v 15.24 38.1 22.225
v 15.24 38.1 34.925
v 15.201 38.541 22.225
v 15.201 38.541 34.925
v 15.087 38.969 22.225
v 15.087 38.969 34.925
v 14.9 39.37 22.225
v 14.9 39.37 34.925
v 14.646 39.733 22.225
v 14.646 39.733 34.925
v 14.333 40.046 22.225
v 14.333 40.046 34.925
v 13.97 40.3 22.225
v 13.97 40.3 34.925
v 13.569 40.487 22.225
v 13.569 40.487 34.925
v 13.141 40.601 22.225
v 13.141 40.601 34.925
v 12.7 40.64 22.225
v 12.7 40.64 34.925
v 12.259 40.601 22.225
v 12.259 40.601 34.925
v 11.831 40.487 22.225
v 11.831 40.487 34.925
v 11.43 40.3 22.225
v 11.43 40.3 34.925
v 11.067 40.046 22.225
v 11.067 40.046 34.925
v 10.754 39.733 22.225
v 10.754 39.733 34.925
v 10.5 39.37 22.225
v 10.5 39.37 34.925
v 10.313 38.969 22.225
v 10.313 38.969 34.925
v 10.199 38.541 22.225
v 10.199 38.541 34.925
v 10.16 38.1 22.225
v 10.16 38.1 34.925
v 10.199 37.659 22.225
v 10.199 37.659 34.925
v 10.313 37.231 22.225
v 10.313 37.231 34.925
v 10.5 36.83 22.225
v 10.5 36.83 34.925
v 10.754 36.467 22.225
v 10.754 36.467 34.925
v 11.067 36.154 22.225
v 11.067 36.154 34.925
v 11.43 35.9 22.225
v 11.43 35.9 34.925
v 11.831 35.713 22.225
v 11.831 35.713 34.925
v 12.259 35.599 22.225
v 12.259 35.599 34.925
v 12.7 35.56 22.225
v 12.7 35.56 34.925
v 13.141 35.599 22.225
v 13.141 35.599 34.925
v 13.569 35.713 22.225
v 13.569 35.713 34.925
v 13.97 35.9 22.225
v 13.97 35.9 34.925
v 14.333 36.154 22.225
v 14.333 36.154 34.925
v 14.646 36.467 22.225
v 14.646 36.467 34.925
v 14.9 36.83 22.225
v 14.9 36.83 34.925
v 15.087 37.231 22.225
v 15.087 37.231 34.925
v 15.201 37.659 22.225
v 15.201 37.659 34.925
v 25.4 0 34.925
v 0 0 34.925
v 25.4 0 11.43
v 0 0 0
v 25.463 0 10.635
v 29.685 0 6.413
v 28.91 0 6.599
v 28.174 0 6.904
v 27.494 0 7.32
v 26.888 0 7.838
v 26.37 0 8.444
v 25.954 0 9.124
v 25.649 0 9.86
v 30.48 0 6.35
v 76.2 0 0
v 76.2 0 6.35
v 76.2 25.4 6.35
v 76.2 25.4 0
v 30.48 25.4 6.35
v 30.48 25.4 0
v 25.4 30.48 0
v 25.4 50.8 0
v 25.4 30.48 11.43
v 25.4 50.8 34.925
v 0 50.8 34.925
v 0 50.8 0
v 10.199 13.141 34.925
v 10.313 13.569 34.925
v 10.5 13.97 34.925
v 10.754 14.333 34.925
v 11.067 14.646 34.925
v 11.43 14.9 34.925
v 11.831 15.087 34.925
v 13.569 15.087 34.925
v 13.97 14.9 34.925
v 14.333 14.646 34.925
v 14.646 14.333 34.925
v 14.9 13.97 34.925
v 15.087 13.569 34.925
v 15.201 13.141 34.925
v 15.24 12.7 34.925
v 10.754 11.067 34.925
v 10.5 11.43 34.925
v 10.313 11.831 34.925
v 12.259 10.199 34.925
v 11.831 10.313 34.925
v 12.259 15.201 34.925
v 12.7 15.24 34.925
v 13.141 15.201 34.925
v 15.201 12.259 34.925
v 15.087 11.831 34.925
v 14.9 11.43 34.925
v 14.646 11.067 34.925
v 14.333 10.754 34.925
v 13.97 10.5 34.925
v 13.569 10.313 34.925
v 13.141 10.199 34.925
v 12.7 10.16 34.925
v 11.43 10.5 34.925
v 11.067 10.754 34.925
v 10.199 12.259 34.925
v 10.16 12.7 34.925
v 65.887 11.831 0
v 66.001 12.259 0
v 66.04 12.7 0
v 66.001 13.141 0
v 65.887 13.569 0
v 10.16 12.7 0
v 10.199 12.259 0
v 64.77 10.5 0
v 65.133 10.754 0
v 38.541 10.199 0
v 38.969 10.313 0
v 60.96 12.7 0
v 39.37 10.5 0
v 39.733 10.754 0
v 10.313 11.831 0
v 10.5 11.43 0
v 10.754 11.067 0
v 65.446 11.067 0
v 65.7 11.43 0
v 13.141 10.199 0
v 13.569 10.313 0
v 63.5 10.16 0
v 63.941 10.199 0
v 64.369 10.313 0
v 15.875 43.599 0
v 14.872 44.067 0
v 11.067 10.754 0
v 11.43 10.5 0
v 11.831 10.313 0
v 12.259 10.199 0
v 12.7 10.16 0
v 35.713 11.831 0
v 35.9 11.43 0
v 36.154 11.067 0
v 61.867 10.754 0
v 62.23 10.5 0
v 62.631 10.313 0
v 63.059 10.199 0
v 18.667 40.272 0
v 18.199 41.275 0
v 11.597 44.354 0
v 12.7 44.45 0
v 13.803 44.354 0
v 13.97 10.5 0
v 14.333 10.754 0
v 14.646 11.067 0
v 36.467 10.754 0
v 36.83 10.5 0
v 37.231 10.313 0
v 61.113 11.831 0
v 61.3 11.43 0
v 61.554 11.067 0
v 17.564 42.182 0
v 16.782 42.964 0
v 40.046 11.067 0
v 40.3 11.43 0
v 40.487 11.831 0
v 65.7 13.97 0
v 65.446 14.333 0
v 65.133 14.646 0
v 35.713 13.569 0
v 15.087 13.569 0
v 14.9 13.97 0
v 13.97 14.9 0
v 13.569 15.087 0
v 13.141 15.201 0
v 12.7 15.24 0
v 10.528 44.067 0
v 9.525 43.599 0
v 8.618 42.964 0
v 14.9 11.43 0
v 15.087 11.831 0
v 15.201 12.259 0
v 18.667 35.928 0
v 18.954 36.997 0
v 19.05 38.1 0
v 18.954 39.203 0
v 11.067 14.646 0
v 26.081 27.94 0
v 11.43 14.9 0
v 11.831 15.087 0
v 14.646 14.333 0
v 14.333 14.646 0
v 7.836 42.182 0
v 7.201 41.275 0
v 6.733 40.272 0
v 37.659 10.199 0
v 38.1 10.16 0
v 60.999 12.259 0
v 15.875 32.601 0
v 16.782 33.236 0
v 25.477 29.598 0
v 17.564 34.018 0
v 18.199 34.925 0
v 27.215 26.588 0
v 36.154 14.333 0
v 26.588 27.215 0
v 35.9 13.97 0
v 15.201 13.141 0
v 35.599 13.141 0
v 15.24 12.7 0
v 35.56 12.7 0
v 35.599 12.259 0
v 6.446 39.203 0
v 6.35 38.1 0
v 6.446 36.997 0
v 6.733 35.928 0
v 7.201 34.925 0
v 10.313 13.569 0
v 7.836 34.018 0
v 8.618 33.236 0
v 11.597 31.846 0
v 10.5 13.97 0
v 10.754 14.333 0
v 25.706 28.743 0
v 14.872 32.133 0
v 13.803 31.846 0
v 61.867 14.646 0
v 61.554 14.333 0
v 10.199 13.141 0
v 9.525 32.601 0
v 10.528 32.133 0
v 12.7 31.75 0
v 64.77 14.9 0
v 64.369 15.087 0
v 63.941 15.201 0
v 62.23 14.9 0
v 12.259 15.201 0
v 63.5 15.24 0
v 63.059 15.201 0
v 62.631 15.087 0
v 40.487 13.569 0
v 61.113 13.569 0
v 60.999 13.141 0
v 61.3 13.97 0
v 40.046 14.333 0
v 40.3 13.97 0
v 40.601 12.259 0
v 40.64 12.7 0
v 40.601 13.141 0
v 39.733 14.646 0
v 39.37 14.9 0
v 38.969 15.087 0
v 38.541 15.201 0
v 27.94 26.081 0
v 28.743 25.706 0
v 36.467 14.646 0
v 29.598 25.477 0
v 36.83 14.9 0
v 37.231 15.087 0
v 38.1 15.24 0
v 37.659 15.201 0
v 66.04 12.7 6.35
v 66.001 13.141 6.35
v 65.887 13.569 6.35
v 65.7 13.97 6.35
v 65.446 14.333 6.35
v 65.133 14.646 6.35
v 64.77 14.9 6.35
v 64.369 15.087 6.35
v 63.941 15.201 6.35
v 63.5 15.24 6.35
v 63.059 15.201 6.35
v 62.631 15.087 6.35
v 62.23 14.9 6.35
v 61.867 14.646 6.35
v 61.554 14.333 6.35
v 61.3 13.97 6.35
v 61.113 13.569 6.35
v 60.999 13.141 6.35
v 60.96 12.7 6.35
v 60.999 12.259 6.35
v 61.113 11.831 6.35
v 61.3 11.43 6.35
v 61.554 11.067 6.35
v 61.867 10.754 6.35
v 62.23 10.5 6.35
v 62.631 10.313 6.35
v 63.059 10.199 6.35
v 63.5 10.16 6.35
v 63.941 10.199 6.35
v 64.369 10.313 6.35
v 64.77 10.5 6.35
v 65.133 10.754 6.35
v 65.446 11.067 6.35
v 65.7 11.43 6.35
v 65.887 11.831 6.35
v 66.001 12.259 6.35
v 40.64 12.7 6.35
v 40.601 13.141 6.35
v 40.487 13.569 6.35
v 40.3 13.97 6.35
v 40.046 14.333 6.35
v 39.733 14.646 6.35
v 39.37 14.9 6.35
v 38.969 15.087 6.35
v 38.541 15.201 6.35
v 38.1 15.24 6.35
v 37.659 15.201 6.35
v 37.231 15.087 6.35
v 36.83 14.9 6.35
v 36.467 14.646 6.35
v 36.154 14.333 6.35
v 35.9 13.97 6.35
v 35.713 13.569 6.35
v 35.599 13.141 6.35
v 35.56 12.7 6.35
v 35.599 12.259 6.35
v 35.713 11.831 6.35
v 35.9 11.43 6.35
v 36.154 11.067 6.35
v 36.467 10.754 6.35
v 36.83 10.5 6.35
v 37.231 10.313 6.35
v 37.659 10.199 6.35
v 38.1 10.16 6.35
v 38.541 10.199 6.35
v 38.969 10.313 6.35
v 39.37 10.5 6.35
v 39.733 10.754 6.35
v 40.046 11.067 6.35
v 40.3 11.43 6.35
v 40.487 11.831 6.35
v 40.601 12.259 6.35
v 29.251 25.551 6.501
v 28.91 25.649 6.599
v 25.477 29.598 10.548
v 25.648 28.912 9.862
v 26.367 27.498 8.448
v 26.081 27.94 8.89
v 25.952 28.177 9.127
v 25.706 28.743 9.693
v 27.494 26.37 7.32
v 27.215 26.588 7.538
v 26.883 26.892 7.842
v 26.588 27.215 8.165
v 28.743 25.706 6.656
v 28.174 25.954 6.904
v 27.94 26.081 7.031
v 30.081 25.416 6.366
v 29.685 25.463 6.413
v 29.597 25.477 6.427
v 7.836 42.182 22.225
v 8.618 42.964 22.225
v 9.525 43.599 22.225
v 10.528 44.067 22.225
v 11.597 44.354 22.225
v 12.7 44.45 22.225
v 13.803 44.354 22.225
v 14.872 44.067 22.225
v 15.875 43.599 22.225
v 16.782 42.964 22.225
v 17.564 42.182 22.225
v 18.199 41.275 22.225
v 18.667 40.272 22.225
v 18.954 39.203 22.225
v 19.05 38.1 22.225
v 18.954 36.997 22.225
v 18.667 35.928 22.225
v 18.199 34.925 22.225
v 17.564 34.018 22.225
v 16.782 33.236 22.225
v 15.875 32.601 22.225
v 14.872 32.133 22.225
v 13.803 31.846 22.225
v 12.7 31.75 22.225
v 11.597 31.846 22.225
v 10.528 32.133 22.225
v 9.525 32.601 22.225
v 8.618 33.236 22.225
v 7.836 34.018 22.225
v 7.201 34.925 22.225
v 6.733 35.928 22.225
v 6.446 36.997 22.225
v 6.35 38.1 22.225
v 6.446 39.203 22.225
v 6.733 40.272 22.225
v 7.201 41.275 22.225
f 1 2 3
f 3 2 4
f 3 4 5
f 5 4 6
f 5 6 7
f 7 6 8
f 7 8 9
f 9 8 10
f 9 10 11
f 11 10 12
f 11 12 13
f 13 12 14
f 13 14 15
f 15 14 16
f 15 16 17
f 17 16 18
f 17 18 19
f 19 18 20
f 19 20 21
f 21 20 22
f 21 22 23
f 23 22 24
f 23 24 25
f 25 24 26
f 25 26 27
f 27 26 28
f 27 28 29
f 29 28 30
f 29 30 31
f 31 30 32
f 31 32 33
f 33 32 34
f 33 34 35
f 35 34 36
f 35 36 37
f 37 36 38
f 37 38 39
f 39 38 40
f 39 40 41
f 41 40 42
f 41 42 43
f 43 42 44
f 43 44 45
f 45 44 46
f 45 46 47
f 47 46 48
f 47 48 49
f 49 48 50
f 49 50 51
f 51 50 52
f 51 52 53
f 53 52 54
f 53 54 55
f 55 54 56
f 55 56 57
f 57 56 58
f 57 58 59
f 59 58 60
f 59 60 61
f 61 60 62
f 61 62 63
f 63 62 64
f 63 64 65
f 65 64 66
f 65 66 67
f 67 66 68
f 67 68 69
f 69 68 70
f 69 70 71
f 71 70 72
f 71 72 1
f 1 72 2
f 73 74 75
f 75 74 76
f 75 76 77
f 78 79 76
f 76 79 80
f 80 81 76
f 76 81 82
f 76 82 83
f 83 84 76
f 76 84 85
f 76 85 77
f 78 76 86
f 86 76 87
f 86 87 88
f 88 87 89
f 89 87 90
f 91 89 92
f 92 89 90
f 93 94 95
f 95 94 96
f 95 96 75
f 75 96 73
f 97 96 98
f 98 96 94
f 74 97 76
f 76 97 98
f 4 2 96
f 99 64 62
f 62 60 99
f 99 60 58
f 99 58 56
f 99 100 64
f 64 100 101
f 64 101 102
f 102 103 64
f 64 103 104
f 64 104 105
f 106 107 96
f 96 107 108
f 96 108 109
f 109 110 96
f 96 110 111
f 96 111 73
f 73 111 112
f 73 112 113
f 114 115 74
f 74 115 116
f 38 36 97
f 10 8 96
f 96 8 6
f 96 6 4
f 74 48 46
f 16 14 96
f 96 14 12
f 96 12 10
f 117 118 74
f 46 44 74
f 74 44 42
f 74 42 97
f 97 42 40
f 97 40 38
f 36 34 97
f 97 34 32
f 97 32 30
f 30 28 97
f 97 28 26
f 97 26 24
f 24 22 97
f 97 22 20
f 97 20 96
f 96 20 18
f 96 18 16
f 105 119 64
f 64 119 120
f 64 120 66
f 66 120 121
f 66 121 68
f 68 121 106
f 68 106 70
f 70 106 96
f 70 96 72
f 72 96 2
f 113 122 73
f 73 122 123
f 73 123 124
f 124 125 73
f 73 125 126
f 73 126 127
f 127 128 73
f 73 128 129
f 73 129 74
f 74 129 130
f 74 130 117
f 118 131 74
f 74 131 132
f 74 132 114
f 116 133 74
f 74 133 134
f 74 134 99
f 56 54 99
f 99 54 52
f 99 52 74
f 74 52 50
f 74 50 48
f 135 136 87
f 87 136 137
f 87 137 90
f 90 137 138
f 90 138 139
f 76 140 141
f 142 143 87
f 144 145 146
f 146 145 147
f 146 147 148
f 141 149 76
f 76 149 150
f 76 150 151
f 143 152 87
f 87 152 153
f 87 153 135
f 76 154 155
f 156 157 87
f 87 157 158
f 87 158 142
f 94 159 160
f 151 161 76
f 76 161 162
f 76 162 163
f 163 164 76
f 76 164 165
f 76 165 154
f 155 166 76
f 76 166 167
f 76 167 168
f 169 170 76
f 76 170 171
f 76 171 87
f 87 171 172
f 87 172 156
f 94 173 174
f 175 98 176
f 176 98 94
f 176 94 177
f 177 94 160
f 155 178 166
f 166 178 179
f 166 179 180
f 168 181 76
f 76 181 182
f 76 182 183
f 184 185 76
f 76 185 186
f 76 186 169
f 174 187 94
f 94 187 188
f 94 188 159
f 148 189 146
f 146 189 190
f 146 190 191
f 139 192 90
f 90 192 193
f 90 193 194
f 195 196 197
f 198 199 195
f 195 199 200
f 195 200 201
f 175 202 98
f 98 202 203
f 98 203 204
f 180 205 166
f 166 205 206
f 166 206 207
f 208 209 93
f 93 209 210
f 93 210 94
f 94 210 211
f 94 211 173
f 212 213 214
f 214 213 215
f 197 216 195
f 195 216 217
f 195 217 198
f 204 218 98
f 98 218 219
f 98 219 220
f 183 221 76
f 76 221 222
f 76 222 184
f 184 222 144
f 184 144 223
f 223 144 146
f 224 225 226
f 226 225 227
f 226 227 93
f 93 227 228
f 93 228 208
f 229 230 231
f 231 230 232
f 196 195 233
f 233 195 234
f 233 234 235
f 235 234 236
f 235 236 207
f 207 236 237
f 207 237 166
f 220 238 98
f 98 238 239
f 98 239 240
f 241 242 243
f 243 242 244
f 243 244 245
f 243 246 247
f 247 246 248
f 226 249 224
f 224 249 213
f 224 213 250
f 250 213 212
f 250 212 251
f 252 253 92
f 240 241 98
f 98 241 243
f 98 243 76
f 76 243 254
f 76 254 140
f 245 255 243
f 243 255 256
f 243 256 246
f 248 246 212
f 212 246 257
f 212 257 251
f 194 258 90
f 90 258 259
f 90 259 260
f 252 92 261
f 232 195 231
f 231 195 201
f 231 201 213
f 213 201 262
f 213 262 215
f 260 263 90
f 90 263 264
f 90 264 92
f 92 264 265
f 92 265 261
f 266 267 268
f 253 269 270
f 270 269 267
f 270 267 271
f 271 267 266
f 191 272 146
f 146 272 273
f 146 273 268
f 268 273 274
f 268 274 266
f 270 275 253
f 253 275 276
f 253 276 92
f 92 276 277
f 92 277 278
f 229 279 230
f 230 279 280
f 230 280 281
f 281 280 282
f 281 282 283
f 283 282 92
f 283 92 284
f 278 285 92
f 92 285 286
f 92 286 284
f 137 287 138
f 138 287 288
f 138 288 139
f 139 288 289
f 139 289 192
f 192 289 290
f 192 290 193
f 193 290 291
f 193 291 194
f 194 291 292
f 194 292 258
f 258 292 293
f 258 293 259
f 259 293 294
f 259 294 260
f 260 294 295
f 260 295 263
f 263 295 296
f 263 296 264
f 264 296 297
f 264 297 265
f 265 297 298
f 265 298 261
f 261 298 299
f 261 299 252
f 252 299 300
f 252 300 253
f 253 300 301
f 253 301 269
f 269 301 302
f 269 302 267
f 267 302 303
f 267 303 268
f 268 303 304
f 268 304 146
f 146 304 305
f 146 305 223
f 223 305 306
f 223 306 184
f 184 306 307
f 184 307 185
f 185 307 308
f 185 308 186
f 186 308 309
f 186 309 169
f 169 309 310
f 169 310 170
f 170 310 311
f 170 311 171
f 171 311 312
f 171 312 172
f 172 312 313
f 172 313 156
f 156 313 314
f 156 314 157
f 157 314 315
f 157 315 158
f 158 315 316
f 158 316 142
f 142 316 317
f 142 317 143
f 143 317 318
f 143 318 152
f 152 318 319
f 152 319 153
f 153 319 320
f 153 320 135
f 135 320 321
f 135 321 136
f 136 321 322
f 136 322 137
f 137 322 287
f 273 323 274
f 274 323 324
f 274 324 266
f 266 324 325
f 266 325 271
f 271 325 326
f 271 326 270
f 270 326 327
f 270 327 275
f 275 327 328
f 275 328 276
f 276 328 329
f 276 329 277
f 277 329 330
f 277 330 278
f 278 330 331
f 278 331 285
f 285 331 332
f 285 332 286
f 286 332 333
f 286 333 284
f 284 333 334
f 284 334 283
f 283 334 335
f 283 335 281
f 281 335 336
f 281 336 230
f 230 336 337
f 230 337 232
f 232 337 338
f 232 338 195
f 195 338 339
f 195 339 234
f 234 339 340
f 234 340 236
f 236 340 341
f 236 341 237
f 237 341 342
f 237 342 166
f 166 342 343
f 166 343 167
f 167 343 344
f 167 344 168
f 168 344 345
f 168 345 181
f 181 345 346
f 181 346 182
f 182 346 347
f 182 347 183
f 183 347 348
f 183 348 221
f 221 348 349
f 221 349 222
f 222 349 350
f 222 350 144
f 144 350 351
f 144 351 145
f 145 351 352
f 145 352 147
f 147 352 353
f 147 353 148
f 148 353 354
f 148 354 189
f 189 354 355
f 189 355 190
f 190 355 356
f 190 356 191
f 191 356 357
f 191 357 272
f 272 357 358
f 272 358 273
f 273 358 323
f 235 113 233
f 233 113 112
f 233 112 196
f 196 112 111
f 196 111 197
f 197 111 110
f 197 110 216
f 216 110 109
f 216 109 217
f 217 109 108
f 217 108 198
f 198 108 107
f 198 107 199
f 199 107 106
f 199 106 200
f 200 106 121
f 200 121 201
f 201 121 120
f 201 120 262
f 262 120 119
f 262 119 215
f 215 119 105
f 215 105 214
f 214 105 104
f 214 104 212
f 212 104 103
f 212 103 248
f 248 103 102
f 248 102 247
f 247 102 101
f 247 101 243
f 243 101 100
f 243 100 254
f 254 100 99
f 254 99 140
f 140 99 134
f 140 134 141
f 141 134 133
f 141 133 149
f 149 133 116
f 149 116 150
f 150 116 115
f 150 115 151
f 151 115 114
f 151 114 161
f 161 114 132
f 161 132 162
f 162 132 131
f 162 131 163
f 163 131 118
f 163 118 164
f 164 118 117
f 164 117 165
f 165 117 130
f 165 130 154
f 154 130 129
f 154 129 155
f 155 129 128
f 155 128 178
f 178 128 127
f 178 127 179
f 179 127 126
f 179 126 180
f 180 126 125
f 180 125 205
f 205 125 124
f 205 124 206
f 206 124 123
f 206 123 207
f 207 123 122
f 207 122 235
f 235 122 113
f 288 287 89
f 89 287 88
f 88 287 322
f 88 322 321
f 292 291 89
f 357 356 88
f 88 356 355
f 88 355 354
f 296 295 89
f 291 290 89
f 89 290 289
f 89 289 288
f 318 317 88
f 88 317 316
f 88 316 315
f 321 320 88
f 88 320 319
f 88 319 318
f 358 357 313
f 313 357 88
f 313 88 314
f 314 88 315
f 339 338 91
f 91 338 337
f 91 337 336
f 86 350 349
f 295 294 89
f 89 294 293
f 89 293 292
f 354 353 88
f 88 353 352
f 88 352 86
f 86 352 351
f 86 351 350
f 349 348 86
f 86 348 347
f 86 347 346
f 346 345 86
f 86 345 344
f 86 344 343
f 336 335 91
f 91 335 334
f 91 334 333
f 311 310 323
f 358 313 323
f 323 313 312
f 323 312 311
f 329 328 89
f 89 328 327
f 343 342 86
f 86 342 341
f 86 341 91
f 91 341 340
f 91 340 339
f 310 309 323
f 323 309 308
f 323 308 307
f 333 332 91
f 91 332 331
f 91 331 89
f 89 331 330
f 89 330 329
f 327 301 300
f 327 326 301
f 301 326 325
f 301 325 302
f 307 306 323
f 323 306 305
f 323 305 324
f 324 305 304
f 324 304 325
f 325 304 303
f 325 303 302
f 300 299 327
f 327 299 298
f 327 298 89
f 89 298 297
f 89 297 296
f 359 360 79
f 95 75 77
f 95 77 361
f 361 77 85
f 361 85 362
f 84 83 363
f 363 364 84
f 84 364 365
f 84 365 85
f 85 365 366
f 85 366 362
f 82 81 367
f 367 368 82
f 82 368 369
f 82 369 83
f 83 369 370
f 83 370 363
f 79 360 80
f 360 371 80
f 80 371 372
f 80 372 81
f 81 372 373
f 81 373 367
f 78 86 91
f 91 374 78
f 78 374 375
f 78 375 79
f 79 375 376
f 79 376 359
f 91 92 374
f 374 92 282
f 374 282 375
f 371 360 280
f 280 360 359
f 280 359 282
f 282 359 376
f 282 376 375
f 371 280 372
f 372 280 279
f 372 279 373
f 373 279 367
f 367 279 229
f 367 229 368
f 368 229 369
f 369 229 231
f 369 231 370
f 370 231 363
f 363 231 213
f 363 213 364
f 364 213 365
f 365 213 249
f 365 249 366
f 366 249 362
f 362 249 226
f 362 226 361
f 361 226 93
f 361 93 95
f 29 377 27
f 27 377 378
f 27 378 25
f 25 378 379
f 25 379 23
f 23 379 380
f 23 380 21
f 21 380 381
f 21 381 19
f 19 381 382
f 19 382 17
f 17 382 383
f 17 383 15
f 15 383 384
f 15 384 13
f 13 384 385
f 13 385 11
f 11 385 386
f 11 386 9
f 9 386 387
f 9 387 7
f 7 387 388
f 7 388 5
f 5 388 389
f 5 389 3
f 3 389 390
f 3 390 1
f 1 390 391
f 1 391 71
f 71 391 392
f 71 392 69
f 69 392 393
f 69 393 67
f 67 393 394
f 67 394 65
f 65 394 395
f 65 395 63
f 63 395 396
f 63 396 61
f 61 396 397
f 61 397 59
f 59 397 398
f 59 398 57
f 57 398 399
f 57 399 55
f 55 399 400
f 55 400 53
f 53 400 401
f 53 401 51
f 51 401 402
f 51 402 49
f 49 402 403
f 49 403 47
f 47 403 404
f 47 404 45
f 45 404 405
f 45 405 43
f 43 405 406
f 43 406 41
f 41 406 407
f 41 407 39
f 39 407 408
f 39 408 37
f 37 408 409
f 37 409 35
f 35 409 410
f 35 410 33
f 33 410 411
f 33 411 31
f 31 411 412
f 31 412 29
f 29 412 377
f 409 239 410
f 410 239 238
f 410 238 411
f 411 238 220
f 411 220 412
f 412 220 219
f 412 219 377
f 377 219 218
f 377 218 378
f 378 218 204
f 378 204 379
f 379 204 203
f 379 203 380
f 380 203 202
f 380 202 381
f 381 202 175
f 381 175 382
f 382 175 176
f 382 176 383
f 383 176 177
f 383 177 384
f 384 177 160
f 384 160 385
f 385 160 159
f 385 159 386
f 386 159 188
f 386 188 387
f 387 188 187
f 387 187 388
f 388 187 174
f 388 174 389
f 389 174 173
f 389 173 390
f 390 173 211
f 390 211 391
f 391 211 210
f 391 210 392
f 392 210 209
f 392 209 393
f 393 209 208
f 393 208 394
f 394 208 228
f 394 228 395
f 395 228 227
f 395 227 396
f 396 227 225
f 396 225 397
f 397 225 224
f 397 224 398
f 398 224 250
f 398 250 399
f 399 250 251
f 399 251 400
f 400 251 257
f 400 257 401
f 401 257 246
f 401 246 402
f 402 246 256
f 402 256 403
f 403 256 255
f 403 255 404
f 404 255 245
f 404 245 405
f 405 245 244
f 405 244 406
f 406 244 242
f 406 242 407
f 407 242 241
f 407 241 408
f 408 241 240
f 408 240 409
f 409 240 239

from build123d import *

# Parameters (mm, degrees)
BOSS_EXTRUDE1_DEPTH = 34.925
SKETCH2_R           = 2.54
CUT_EXTRUDE1_DEPTH  = 99.014466407
SKETCH4_W           = 50.8
SKETCH4_H           = 28.575
CUT_EXTRUDE3_DEPTH  = 99.014466407
FILLET1_R           = 5.08
SKETCH5_R           = 6.35
CUT_EXTRUDE4_DEPTH  = 22.225


with BuildPart() as part:
    # Sketch1 → Boss-Extrude1 (new body)
    with BuildSketch(Plane.XY):
        Polygon((0, 0), (0, 50.8), (25.4, 50.8), (25.4, 25.4), (76.2, 25.4), (76.2, 0), align=None)
    extrude(amount=BOSS_EXTRUDE1_DEPTH)

    # Sketch2 → Cut-Extrude1 (cut, through all)
    with BuildSketch(Plane.XY.offset(34.925)):
        with Locations((12.7, 38.1)):
            Circle(SKETCH2_R)
        with Locations((12.7, 12.7)):
            Circle(SKETCH2_R)
        with Locations((38.1, 12.7)):
            Circle(SKETCH2_R)
        with Locations((63.5, 12.7)):
            Circle(SKETCH2_R)
    extrude(amount=-CUT_EXTRUDE1_DEPTH, mode=Mode.SUBTRACT)

    # Sketch4 → Cut-Extrude3 (cut, through all)
    with BuildSketch(Plane.XZ):
        with Locations((50.8, 20.6375)):
            Rectangle(SKETCH4_W, SKETCH4_H)
    extrude(amount=-CUT_EXTRUDE3_DEPTH, mode=Mode.SUBTRACT)

    # Fillet1
    fillet1_edges = [part.edges().sort_by_distance(p)[0] for p in [
        (25.4, 25.4, 3.175),
        (25.4, 12.7, 6.35),
    ]]
    fillet(fillet1_edges, radius=FILLET1_R)

    # Sketch5 → Cut-Extrude4 (cut)
    with BuildSketch(Plane(origin=(0, 0, 0), x_dir=(-1, 0, 0), z_dir=(0, 0, -1))):
        with Locations((-12.7, 38.1)):
            Circle(SKETCH5_R)
    extrude(amount=-CUT_EXTRUDE4_DEPTH, mode=Mode.SUBTRACT)


solid = part.part
